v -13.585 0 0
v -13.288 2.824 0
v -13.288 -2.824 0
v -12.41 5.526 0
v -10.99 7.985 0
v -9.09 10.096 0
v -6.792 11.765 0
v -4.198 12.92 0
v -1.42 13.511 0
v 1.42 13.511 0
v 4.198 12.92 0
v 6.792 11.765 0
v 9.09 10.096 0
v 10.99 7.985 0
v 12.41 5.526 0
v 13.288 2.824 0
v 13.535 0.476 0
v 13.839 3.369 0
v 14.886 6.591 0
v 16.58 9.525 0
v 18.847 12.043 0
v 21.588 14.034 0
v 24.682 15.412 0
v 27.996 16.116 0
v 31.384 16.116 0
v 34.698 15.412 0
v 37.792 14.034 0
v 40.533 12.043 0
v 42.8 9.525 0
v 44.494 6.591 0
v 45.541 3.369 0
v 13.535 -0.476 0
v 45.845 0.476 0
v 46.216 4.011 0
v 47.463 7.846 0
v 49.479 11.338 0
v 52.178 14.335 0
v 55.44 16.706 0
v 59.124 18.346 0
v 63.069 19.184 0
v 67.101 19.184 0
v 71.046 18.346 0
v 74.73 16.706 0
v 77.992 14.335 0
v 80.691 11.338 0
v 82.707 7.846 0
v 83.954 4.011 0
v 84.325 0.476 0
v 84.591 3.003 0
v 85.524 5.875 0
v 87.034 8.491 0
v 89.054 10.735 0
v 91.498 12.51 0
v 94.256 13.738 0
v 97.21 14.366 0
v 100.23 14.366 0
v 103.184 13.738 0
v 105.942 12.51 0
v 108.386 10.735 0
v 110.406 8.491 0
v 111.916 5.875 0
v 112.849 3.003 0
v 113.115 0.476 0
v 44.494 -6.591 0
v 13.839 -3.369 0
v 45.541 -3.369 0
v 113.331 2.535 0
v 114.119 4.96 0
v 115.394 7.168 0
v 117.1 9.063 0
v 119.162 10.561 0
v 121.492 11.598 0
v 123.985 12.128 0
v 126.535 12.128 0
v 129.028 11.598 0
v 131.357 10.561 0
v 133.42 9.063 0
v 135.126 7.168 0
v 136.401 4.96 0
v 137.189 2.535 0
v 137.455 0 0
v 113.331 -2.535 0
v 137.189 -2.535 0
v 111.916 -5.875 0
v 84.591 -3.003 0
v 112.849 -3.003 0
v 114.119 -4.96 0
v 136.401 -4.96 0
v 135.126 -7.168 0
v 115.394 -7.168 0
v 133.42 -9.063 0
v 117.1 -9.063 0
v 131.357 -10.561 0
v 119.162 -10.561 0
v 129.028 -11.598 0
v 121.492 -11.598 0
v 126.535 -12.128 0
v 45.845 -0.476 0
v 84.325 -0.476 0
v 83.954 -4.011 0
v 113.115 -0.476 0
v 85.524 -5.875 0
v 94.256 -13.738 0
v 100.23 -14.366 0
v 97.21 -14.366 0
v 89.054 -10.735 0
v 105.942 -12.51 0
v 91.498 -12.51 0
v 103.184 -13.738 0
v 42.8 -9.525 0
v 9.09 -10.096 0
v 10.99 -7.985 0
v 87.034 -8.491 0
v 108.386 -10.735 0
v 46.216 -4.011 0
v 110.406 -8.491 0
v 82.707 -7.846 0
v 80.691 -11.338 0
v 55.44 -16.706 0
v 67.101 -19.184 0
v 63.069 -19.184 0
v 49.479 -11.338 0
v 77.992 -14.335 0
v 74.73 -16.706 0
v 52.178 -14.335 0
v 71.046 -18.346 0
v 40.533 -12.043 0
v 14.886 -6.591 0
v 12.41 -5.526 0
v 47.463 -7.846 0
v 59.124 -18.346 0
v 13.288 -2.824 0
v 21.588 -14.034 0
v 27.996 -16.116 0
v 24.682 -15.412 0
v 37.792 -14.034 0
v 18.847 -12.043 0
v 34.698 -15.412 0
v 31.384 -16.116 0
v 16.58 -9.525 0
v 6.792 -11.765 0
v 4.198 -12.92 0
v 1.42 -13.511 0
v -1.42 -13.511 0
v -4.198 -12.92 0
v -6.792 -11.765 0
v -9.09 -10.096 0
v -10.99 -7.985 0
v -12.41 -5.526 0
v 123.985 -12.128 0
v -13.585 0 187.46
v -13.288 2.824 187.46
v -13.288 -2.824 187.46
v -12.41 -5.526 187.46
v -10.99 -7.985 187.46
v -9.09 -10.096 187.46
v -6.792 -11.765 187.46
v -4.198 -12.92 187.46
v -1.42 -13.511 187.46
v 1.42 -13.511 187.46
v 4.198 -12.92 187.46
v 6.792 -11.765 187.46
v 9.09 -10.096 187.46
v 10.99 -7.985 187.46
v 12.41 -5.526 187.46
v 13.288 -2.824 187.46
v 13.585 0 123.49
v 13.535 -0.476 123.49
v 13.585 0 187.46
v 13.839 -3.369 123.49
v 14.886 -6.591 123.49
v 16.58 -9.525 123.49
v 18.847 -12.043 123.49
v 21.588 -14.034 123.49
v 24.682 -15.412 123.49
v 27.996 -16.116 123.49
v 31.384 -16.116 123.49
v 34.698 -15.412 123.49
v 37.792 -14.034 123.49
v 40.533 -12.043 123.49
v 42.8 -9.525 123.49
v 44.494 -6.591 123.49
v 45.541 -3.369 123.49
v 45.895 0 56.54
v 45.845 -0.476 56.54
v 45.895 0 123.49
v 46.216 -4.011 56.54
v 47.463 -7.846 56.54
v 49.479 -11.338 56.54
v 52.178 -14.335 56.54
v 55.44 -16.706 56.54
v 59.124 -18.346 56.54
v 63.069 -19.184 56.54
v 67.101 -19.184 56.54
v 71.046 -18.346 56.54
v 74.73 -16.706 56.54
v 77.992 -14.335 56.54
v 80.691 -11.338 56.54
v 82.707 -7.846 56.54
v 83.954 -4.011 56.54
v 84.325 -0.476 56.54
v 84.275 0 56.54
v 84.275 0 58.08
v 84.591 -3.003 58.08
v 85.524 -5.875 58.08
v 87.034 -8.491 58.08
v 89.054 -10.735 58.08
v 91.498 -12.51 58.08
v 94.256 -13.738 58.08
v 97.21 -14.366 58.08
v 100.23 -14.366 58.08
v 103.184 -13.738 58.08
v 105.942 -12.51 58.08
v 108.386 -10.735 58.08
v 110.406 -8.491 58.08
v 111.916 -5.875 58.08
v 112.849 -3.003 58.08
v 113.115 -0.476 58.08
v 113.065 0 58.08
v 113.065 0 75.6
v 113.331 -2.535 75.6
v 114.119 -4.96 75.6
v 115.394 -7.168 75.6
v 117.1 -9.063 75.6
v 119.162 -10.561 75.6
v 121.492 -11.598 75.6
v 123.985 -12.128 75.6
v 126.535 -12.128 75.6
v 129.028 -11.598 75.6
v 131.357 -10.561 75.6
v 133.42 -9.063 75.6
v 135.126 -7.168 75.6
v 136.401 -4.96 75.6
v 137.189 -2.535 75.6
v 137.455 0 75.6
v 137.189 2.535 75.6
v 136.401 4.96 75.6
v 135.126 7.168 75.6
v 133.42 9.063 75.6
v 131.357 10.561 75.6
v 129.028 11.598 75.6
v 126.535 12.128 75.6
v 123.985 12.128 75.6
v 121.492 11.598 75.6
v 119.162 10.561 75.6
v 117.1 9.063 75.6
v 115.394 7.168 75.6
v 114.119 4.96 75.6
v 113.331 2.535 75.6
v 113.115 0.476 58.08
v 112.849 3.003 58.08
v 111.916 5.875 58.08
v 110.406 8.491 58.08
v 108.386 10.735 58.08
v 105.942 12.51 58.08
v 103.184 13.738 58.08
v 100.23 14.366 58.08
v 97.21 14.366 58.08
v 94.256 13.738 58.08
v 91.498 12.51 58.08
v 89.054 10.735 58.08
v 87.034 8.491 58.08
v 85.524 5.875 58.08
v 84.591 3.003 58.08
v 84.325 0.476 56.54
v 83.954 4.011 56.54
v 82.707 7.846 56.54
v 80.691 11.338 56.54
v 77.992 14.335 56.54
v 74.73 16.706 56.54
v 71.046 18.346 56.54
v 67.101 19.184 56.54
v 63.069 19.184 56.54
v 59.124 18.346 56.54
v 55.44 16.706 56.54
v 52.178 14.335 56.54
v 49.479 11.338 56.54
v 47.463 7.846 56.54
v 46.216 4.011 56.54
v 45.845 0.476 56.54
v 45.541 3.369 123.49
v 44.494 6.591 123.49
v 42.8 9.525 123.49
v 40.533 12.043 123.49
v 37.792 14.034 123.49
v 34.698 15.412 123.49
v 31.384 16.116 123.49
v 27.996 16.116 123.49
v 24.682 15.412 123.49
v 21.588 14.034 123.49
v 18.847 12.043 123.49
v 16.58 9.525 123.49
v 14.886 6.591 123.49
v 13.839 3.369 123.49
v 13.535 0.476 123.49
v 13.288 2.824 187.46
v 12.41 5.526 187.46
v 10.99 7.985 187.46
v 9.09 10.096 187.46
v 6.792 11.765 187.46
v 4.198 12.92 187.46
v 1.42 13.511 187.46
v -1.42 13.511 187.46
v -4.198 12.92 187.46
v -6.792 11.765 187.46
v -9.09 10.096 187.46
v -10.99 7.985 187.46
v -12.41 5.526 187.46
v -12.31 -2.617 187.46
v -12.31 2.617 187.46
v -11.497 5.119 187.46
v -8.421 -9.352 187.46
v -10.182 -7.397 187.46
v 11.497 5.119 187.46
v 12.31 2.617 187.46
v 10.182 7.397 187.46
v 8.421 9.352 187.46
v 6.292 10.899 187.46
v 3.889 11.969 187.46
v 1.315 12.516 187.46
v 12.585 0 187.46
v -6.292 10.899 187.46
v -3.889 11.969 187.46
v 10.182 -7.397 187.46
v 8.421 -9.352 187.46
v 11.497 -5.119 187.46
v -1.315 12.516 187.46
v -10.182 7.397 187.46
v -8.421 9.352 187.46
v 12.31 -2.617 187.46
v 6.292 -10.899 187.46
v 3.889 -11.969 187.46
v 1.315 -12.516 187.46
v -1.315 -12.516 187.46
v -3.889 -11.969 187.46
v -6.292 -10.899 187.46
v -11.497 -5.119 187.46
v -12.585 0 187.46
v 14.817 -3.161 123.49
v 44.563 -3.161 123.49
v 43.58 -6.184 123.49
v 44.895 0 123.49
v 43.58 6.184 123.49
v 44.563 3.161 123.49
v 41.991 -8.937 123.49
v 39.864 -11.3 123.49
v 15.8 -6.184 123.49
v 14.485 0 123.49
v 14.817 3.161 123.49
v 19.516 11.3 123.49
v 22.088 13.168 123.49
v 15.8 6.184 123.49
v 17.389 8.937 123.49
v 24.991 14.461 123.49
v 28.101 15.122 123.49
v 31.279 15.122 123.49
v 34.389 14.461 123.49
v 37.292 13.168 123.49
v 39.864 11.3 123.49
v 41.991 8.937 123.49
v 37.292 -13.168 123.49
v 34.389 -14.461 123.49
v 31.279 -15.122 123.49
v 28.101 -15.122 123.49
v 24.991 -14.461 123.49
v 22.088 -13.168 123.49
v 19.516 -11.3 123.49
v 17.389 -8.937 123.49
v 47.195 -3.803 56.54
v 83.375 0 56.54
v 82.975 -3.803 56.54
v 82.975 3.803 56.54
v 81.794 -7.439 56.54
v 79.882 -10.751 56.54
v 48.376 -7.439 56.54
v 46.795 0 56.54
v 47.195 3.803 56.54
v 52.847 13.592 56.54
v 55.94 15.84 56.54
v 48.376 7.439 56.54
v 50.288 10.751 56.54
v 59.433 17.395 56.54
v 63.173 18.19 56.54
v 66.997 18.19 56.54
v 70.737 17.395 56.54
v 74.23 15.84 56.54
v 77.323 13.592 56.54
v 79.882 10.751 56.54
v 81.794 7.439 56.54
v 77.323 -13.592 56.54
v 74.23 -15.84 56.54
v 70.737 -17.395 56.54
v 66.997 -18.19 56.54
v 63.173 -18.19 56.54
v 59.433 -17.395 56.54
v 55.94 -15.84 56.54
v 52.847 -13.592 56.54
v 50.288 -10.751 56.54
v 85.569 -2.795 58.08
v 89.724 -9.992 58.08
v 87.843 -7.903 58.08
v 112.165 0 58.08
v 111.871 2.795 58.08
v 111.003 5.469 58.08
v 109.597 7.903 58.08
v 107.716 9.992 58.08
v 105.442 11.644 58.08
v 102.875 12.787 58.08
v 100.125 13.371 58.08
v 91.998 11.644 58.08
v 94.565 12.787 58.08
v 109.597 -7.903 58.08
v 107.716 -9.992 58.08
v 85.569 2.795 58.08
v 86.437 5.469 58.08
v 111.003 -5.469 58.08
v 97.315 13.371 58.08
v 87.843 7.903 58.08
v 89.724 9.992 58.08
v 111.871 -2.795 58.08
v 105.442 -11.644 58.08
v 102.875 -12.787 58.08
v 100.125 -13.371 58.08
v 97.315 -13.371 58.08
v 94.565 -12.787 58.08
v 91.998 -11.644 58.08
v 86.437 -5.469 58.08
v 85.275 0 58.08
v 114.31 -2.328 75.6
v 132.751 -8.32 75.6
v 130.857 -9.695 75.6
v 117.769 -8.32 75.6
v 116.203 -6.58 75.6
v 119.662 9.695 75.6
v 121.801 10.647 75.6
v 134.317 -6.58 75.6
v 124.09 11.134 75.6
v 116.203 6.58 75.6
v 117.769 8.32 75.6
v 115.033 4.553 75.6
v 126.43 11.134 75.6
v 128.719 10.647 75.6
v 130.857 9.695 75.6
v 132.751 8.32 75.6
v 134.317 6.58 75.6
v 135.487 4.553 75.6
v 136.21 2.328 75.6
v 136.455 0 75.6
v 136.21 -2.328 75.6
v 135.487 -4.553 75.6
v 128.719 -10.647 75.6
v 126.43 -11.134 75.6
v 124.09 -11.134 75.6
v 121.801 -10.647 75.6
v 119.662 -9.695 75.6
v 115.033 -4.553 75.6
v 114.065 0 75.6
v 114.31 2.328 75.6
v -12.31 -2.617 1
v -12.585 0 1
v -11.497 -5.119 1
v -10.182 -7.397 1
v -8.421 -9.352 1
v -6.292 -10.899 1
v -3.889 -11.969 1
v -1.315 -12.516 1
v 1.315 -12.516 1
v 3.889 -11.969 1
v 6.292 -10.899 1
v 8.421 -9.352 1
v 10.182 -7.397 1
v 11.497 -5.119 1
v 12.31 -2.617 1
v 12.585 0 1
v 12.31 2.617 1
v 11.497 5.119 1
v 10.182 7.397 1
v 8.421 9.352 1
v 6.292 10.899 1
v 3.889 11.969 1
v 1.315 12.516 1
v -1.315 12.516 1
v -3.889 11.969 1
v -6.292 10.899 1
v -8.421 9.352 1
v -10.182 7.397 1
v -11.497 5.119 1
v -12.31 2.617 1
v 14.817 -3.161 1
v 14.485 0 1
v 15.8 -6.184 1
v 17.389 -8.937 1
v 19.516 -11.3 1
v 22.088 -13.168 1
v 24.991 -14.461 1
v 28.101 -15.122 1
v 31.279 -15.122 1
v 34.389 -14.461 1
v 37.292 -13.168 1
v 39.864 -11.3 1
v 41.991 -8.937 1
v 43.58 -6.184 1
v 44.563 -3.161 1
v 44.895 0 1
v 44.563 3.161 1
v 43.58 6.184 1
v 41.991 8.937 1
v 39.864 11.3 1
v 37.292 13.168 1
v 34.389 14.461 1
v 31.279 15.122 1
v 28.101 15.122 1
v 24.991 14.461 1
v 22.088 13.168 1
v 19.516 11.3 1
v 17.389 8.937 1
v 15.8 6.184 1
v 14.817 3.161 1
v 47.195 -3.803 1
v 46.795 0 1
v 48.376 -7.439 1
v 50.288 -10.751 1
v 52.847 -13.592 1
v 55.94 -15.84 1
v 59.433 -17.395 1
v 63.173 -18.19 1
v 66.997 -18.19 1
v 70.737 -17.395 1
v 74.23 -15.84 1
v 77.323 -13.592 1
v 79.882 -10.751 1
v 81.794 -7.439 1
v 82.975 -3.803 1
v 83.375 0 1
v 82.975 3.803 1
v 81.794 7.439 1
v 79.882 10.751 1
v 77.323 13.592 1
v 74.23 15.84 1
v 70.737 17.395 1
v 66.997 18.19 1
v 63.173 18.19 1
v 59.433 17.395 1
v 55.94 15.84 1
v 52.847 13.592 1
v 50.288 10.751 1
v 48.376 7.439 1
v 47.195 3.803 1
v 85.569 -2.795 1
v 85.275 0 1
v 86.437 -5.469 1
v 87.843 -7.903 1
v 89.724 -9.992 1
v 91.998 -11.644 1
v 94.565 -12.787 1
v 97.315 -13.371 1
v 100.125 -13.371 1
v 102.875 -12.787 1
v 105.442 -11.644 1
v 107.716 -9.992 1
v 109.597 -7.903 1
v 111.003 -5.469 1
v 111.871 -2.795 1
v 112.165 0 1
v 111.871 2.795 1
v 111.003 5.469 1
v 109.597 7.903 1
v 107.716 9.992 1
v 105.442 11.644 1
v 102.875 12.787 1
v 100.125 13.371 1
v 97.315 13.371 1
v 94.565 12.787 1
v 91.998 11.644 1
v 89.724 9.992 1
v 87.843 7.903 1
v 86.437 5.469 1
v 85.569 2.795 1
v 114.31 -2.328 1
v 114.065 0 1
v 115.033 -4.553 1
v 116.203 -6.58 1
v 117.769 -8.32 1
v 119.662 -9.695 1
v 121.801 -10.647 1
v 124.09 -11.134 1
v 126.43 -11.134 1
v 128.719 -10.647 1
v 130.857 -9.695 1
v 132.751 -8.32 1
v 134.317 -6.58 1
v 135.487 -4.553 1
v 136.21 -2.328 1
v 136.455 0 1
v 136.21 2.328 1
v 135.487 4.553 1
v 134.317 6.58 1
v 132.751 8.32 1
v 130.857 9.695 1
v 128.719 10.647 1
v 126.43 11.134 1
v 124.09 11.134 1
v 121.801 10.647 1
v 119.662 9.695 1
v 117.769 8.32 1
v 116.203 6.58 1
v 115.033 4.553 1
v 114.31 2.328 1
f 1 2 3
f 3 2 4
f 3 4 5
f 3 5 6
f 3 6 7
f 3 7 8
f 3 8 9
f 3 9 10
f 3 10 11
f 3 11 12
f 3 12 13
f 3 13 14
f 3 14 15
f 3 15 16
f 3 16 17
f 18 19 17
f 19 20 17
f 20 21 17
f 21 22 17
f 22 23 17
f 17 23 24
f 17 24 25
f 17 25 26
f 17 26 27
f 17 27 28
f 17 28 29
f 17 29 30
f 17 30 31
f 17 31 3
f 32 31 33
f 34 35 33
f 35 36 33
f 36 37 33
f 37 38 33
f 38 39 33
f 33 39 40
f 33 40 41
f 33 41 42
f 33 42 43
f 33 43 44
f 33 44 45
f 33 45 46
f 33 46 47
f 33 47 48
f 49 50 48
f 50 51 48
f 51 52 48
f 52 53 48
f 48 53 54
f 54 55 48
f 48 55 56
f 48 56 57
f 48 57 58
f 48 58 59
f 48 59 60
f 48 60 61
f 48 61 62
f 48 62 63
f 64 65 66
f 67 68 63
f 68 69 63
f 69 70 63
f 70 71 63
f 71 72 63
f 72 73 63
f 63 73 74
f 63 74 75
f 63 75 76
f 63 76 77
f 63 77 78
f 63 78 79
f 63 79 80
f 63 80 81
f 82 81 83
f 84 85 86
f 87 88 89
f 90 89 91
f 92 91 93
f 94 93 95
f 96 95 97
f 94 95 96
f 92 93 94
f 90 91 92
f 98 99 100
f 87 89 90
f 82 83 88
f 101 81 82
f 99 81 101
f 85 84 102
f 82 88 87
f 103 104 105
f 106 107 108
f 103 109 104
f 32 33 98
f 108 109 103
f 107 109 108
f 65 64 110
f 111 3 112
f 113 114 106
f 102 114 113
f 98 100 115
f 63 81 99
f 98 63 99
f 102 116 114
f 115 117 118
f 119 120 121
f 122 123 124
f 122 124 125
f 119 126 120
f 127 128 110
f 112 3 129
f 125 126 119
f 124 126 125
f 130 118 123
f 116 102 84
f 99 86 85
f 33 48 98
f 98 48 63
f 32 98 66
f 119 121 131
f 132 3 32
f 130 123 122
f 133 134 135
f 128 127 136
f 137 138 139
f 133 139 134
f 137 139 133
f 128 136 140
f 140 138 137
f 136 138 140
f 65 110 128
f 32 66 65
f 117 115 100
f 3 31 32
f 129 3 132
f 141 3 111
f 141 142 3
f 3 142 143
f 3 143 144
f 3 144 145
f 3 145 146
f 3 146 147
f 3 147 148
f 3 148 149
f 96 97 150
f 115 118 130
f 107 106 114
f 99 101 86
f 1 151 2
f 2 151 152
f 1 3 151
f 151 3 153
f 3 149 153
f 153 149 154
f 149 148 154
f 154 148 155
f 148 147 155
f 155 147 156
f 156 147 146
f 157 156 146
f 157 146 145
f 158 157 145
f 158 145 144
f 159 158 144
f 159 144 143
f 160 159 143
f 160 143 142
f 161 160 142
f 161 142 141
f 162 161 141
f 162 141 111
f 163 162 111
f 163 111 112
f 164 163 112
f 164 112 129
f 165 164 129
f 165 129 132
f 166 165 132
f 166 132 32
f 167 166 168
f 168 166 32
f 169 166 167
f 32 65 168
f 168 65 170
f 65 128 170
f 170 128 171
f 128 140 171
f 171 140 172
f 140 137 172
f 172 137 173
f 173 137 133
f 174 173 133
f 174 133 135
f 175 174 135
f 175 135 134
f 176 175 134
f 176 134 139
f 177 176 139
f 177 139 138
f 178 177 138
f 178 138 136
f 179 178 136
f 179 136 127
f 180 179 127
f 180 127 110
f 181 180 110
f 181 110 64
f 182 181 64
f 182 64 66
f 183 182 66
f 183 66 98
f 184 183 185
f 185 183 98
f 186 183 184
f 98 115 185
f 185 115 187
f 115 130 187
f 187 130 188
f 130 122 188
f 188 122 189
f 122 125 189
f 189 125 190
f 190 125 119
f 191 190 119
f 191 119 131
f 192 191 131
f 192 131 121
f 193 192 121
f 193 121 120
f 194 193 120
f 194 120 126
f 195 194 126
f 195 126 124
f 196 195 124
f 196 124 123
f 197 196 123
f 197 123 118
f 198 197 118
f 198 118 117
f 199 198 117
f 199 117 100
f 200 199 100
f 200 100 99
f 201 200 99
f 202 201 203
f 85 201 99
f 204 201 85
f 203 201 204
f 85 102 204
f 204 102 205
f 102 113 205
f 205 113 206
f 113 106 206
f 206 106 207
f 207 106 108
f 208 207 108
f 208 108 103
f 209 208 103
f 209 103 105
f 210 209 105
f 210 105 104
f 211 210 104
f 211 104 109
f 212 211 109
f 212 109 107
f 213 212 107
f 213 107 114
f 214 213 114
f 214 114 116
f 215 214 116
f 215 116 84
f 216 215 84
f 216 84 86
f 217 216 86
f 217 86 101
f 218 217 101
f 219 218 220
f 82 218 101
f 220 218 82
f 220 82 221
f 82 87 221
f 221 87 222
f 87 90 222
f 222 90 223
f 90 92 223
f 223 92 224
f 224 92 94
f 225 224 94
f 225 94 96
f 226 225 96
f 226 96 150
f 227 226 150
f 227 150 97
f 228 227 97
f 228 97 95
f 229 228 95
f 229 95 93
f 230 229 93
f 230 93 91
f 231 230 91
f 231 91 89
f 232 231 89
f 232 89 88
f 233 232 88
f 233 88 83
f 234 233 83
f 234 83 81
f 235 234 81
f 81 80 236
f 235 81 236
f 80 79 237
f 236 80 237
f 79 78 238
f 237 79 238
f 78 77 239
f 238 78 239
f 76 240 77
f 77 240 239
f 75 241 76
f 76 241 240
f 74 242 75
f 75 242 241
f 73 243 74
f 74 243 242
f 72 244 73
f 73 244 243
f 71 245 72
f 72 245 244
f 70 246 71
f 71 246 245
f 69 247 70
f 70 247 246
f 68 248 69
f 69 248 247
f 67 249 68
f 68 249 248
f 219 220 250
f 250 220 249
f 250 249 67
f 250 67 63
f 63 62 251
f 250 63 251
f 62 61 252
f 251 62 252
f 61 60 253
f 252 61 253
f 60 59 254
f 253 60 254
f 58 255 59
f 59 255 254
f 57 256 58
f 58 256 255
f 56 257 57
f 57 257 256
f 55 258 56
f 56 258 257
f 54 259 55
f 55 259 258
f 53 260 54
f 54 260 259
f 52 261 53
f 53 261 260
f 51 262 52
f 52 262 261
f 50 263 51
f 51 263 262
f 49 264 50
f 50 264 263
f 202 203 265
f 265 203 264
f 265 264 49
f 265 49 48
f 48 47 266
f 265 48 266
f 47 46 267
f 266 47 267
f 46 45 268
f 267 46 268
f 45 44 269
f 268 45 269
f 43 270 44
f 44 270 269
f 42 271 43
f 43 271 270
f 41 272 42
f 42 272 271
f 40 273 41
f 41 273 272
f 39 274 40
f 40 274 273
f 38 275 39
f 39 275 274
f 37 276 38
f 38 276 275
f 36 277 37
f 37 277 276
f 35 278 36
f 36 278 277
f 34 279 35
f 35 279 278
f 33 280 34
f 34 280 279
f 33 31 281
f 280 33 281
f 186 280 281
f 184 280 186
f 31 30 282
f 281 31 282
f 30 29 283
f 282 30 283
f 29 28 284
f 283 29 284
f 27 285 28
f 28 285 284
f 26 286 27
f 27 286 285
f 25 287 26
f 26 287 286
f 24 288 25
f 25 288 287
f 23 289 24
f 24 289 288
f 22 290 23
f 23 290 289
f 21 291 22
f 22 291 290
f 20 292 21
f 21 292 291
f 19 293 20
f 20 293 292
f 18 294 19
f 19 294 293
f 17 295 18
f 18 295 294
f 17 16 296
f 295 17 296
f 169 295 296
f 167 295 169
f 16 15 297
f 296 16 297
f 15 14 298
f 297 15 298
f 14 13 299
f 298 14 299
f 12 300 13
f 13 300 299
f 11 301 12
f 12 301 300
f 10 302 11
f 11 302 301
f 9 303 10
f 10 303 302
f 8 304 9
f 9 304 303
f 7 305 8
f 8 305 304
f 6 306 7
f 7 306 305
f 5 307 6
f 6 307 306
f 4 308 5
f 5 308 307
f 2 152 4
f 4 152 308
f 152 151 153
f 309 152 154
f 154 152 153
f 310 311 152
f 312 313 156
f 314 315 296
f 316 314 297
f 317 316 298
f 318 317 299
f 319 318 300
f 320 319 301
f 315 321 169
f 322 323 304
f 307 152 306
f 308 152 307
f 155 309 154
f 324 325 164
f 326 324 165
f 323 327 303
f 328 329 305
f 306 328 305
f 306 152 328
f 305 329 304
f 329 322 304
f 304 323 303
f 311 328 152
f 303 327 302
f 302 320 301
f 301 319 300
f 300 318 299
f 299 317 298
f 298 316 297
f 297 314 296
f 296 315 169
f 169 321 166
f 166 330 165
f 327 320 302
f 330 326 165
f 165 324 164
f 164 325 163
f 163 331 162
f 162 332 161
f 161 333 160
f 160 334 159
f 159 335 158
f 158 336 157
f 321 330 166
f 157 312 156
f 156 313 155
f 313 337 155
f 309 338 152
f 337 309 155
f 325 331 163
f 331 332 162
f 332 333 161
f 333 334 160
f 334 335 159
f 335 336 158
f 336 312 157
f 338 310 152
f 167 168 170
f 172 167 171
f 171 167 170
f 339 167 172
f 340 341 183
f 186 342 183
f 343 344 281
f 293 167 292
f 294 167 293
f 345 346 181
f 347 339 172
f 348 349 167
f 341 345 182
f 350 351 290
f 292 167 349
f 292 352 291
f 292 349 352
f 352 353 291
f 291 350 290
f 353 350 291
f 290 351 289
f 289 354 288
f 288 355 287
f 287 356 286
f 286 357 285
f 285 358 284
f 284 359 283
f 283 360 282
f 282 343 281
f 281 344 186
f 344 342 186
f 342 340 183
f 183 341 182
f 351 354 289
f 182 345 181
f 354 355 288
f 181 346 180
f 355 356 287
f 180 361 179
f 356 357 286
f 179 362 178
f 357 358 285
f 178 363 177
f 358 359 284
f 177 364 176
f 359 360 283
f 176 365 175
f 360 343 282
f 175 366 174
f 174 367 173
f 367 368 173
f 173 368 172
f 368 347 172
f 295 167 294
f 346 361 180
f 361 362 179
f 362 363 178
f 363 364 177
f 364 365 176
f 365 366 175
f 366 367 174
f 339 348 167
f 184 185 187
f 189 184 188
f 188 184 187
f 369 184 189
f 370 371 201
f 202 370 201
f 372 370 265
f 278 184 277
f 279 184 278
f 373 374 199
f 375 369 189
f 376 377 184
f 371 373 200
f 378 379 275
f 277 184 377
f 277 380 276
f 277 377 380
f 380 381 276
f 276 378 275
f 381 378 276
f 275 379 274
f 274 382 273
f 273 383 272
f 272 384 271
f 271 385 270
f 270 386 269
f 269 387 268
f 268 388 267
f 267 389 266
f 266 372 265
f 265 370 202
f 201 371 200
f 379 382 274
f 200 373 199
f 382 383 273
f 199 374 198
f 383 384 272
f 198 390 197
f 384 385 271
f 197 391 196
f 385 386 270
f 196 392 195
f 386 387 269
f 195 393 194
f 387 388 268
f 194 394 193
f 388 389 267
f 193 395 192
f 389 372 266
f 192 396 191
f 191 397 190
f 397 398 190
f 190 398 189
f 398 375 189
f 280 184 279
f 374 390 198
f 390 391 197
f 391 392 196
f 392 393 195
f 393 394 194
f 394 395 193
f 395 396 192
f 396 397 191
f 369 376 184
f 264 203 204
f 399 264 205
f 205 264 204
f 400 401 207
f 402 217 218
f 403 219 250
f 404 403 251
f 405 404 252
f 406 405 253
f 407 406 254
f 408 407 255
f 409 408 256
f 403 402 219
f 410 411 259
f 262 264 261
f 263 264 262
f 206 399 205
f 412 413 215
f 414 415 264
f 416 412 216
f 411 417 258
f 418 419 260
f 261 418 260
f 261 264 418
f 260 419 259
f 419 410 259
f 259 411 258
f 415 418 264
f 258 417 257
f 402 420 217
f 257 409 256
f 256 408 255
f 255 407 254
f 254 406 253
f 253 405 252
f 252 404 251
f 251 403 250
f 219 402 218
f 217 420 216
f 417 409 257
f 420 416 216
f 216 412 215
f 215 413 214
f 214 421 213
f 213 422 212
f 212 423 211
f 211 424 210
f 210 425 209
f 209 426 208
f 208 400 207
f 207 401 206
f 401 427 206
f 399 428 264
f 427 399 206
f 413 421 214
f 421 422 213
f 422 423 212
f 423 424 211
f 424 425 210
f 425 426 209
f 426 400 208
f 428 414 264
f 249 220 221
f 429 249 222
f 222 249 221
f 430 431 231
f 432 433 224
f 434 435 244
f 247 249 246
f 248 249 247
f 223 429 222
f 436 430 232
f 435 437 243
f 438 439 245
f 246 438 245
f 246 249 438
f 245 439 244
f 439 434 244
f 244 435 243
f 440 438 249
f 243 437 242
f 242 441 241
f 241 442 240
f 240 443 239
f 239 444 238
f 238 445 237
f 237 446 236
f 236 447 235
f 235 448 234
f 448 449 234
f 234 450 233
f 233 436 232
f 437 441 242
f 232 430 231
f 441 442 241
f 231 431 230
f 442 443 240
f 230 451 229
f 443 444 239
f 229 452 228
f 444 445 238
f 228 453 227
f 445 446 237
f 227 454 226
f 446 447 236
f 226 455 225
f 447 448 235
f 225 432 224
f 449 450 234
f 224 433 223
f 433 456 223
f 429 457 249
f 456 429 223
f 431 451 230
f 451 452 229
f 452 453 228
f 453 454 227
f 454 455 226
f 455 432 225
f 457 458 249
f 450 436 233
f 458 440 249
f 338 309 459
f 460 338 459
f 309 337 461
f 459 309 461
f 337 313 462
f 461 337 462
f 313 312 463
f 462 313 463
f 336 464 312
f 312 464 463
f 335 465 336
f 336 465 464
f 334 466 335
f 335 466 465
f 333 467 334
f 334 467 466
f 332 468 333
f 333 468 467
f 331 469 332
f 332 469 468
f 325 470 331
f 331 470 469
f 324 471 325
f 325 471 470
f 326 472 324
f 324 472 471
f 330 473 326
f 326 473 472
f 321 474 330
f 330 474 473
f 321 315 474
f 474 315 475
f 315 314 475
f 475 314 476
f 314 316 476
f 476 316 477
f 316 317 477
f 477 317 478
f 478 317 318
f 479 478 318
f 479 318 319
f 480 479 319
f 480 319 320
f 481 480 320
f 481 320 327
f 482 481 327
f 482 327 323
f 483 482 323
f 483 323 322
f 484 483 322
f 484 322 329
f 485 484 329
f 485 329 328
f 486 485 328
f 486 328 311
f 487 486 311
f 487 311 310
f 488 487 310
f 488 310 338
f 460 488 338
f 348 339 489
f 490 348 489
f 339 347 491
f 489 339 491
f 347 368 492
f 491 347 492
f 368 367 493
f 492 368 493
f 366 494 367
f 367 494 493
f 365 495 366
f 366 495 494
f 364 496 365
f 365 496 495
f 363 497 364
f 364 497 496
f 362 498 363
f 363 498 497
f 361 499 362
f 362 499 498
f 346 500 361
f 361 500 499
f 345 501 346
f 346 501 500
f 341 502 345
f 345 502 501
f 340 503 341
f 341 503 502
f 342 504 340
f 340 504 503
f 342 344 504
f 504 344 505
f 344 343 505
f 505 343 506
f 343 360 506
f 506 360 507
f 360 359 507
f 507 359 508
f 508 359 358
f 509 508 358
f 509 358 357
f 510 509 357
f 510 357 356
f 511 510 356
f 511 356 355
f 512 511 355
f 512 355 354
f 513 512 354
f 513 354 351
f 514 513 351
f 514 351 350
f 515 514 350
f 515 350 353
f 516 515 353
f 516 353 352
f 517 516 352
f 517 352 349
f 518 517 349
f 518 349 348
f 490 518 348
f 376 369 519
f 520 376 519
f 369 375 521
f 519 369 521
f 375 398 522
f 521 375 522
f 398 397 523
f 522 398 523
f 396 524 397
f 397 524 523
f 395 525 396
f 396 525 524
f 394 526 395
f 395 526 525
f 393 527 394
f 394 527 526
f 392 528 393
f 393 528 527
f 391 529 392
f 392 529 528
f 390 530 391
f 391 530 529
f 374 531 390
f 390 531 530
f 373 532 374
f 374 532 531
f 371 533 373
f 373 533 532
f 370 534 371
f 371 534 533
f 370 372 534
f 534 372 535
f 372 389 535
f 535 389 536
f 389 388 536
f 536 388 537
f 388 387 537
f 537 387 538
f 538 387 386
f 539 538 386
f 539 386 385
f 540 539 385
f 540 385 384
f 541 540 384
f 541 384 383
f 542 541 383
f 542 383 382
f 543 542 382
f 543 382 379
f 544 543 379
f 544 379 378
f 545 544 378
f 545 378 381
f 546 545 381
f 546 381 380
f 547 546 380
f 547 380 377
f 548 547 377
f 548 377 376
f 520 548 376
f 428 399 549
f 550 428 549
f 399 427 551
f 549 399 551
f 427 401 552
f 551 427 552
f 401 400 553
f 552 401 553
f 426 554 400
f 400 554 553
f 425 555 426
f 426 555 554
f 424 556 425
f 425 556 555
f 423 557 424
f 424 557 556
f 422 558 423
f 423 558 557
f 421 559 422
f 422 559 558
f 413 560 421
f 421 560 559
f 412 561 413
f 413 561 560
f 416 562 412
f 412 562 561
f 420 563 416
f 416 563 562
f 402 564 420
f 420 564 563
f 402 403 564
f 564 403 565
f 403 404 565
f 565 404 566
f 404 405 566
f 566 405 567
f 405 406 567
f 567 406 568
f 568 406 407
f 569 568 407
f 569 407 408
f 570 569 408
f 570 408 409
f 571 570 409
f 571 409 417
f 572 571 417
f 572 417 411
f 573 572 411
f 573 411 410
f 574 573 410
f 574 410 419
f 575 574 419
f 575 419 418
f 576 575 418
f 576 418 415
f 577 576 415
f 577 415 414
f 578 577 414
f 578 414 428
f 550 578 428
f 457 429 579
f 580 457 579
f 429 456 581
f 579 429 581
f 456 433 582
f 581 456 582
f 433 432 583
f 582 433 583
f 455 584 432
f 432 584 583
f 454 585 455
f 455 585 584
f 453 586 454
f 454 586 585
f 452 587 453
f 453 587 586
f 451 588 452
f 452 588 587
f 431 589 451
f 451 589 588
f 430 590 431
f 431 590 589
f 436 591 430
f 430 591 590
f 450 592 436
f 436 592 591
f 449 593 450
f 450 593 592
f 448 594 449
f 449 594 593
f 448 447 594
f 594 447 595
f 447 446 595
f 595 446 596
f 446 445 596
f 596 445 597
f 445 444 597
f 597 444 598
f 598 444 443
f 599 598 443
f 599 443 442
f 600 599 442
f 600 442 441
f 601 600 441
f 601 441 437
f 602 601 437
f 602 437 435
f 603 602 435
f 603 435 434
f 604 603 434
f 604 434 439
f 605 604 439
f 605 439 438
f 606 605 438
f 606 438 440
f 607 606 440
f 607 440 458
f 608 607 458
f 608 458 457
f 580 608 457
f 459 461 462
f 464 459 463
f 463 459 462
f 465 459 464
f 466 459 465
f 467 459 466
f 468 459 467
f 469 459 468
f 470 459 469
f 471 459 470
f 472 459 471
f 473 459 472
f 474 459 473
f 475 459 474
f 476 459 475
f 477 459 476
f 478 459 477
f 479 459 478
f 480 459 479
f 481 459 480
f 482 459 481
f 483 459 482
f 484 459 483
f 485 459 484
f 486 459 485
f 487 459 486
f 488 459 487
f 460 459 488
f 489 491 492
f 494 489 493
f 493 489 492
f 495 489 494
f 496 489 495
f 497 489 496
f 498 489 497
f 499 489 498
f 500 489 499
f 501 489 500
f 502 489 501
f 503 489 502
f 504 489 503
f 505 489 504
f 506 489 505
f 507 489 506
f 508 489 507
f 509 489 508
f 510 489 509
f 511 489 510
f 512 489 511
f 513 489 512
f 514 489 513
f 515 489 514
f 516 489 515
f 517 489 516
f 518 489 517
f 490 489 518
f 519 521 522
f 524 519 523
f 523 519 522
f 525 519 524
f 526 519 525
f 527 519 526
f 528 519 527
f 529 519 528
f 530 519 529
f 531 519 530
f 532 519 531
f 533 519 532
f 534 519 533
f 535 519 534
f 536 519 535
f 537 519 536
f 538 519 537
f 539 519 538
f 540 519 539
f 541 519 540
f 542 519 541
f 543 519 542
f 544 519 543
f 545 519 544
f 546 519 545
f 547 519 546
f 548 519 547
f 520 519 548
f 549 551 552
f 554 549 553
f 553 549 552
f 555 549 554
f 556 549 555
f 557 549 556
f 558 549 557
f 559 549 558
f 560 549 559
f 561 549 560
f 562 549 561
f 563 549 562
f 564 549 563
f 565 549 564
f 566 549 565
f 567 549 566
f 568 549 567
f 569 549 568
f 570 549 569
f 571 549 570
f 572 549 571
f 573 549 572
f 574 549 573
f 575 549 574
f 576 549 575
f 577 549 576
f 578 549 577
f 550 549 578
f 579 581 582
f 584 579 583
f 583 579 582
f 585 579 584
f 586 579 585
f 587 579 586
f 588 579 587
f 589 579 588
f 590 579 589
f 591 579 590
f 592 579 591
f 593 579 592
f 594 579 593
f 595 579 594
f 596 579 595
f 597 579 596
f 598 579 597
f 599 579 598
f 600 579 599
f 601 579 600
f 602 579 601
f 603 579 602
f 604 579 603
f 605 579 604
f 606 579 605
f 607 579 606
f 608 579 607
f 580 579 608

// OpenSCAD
EXTRA_SPACE = 1;
WALL_THICKNESS = 1;

10_C_HEIGHT = 1.82;
10_C_RADIUS = 23.17 / 2;

20_C_HEIGHT = 2.33;
20_C_RADIUS = 28.41 / 2;

50_C_HEIGHT = 2.57;
50_C_RADIUS = (31.58 + 3) / 2;

01_D_HEIGHT = 2.64;
01_D_RADIUS = 24.89 / 2;

02_D_HEIGHT = 2.8;
02_D_RADIUS = 20.39 / 2;

module BaseHolder(numCoins, height, radius)
{
    difference()
    {
        cylinder(r = (radius + EXTRA_SPACE + WALL_THICKNESS), h = (numCoins * height));

        translate([0, 0, WALL_THICKNESS])
        cylinder(r = (radius + EXTRA_SPACE), h = (numCoins * height + WALL_THICKNESS));
    }
}

module 10_C_Holder(numCoins = 10 * 10 + 3)
{
    BaseHolder(numCoins, 10_C_HEIGHT, 10_C_RADIUS);
}

module 20_C_Holder(numCoins = 5 * 10 + 3)
{
    BaseHolder(numCoins, 20_C_HEIGHT, 20_C_RADIUS);
}

module 50_C_Holder(numCoins = 2 * 10 + 2)
{
    BaseHolder(numCoins, 50_C_HEIGHT, 50_C_RADIUS);
}

module 01_D_Holder(numCoins = 1 * 20 + 2)
{
    BaseHolder(numCoins, 01_D_HEIGHT, 01_D_RADIUS);
}

module 02_D_Holder(numCoins = 50 / 2 + 2)
{
    BaseHolder(numCoins, 02_D_HEIGHT, 02_D_RADIUS);
}

offset1 = 0;
offset2 = offset1 + (WALL_THICKNESS + EXTRA_SPACE) * 2 + 10_C_RADIUS + 20_C_RADIUS - 0.1;
offset3 = offset2 + (WALL_THICKNESS + EXTRA_SPACE) * 2 + 20_C_RADIUS + 50_C_RADIUS - 0.1;
offset4 = offset3 + (WALL_THICKNESS + EXTRA_SPACE) * 2 + 50_C_RADIUS + 01_D_RADIUS - 0.1;
offset5 = offset4 + (WALL_THICKNESS + EXTRA_SPACE) * 2 + 01_D_RADIUS + 02_D_RADIUS - 0.1;

translate([offset1, 0, 0]) 10_C_Holder();
translate([offset2, 0, 0]) 20_C_Holder();
translate([offset3, 0, 0]) 50_C_Holder();
translate([offset4, 0, 0]) 01_D_Holder();
translate([offset5, 0, 0]) 02_D_Holder();
